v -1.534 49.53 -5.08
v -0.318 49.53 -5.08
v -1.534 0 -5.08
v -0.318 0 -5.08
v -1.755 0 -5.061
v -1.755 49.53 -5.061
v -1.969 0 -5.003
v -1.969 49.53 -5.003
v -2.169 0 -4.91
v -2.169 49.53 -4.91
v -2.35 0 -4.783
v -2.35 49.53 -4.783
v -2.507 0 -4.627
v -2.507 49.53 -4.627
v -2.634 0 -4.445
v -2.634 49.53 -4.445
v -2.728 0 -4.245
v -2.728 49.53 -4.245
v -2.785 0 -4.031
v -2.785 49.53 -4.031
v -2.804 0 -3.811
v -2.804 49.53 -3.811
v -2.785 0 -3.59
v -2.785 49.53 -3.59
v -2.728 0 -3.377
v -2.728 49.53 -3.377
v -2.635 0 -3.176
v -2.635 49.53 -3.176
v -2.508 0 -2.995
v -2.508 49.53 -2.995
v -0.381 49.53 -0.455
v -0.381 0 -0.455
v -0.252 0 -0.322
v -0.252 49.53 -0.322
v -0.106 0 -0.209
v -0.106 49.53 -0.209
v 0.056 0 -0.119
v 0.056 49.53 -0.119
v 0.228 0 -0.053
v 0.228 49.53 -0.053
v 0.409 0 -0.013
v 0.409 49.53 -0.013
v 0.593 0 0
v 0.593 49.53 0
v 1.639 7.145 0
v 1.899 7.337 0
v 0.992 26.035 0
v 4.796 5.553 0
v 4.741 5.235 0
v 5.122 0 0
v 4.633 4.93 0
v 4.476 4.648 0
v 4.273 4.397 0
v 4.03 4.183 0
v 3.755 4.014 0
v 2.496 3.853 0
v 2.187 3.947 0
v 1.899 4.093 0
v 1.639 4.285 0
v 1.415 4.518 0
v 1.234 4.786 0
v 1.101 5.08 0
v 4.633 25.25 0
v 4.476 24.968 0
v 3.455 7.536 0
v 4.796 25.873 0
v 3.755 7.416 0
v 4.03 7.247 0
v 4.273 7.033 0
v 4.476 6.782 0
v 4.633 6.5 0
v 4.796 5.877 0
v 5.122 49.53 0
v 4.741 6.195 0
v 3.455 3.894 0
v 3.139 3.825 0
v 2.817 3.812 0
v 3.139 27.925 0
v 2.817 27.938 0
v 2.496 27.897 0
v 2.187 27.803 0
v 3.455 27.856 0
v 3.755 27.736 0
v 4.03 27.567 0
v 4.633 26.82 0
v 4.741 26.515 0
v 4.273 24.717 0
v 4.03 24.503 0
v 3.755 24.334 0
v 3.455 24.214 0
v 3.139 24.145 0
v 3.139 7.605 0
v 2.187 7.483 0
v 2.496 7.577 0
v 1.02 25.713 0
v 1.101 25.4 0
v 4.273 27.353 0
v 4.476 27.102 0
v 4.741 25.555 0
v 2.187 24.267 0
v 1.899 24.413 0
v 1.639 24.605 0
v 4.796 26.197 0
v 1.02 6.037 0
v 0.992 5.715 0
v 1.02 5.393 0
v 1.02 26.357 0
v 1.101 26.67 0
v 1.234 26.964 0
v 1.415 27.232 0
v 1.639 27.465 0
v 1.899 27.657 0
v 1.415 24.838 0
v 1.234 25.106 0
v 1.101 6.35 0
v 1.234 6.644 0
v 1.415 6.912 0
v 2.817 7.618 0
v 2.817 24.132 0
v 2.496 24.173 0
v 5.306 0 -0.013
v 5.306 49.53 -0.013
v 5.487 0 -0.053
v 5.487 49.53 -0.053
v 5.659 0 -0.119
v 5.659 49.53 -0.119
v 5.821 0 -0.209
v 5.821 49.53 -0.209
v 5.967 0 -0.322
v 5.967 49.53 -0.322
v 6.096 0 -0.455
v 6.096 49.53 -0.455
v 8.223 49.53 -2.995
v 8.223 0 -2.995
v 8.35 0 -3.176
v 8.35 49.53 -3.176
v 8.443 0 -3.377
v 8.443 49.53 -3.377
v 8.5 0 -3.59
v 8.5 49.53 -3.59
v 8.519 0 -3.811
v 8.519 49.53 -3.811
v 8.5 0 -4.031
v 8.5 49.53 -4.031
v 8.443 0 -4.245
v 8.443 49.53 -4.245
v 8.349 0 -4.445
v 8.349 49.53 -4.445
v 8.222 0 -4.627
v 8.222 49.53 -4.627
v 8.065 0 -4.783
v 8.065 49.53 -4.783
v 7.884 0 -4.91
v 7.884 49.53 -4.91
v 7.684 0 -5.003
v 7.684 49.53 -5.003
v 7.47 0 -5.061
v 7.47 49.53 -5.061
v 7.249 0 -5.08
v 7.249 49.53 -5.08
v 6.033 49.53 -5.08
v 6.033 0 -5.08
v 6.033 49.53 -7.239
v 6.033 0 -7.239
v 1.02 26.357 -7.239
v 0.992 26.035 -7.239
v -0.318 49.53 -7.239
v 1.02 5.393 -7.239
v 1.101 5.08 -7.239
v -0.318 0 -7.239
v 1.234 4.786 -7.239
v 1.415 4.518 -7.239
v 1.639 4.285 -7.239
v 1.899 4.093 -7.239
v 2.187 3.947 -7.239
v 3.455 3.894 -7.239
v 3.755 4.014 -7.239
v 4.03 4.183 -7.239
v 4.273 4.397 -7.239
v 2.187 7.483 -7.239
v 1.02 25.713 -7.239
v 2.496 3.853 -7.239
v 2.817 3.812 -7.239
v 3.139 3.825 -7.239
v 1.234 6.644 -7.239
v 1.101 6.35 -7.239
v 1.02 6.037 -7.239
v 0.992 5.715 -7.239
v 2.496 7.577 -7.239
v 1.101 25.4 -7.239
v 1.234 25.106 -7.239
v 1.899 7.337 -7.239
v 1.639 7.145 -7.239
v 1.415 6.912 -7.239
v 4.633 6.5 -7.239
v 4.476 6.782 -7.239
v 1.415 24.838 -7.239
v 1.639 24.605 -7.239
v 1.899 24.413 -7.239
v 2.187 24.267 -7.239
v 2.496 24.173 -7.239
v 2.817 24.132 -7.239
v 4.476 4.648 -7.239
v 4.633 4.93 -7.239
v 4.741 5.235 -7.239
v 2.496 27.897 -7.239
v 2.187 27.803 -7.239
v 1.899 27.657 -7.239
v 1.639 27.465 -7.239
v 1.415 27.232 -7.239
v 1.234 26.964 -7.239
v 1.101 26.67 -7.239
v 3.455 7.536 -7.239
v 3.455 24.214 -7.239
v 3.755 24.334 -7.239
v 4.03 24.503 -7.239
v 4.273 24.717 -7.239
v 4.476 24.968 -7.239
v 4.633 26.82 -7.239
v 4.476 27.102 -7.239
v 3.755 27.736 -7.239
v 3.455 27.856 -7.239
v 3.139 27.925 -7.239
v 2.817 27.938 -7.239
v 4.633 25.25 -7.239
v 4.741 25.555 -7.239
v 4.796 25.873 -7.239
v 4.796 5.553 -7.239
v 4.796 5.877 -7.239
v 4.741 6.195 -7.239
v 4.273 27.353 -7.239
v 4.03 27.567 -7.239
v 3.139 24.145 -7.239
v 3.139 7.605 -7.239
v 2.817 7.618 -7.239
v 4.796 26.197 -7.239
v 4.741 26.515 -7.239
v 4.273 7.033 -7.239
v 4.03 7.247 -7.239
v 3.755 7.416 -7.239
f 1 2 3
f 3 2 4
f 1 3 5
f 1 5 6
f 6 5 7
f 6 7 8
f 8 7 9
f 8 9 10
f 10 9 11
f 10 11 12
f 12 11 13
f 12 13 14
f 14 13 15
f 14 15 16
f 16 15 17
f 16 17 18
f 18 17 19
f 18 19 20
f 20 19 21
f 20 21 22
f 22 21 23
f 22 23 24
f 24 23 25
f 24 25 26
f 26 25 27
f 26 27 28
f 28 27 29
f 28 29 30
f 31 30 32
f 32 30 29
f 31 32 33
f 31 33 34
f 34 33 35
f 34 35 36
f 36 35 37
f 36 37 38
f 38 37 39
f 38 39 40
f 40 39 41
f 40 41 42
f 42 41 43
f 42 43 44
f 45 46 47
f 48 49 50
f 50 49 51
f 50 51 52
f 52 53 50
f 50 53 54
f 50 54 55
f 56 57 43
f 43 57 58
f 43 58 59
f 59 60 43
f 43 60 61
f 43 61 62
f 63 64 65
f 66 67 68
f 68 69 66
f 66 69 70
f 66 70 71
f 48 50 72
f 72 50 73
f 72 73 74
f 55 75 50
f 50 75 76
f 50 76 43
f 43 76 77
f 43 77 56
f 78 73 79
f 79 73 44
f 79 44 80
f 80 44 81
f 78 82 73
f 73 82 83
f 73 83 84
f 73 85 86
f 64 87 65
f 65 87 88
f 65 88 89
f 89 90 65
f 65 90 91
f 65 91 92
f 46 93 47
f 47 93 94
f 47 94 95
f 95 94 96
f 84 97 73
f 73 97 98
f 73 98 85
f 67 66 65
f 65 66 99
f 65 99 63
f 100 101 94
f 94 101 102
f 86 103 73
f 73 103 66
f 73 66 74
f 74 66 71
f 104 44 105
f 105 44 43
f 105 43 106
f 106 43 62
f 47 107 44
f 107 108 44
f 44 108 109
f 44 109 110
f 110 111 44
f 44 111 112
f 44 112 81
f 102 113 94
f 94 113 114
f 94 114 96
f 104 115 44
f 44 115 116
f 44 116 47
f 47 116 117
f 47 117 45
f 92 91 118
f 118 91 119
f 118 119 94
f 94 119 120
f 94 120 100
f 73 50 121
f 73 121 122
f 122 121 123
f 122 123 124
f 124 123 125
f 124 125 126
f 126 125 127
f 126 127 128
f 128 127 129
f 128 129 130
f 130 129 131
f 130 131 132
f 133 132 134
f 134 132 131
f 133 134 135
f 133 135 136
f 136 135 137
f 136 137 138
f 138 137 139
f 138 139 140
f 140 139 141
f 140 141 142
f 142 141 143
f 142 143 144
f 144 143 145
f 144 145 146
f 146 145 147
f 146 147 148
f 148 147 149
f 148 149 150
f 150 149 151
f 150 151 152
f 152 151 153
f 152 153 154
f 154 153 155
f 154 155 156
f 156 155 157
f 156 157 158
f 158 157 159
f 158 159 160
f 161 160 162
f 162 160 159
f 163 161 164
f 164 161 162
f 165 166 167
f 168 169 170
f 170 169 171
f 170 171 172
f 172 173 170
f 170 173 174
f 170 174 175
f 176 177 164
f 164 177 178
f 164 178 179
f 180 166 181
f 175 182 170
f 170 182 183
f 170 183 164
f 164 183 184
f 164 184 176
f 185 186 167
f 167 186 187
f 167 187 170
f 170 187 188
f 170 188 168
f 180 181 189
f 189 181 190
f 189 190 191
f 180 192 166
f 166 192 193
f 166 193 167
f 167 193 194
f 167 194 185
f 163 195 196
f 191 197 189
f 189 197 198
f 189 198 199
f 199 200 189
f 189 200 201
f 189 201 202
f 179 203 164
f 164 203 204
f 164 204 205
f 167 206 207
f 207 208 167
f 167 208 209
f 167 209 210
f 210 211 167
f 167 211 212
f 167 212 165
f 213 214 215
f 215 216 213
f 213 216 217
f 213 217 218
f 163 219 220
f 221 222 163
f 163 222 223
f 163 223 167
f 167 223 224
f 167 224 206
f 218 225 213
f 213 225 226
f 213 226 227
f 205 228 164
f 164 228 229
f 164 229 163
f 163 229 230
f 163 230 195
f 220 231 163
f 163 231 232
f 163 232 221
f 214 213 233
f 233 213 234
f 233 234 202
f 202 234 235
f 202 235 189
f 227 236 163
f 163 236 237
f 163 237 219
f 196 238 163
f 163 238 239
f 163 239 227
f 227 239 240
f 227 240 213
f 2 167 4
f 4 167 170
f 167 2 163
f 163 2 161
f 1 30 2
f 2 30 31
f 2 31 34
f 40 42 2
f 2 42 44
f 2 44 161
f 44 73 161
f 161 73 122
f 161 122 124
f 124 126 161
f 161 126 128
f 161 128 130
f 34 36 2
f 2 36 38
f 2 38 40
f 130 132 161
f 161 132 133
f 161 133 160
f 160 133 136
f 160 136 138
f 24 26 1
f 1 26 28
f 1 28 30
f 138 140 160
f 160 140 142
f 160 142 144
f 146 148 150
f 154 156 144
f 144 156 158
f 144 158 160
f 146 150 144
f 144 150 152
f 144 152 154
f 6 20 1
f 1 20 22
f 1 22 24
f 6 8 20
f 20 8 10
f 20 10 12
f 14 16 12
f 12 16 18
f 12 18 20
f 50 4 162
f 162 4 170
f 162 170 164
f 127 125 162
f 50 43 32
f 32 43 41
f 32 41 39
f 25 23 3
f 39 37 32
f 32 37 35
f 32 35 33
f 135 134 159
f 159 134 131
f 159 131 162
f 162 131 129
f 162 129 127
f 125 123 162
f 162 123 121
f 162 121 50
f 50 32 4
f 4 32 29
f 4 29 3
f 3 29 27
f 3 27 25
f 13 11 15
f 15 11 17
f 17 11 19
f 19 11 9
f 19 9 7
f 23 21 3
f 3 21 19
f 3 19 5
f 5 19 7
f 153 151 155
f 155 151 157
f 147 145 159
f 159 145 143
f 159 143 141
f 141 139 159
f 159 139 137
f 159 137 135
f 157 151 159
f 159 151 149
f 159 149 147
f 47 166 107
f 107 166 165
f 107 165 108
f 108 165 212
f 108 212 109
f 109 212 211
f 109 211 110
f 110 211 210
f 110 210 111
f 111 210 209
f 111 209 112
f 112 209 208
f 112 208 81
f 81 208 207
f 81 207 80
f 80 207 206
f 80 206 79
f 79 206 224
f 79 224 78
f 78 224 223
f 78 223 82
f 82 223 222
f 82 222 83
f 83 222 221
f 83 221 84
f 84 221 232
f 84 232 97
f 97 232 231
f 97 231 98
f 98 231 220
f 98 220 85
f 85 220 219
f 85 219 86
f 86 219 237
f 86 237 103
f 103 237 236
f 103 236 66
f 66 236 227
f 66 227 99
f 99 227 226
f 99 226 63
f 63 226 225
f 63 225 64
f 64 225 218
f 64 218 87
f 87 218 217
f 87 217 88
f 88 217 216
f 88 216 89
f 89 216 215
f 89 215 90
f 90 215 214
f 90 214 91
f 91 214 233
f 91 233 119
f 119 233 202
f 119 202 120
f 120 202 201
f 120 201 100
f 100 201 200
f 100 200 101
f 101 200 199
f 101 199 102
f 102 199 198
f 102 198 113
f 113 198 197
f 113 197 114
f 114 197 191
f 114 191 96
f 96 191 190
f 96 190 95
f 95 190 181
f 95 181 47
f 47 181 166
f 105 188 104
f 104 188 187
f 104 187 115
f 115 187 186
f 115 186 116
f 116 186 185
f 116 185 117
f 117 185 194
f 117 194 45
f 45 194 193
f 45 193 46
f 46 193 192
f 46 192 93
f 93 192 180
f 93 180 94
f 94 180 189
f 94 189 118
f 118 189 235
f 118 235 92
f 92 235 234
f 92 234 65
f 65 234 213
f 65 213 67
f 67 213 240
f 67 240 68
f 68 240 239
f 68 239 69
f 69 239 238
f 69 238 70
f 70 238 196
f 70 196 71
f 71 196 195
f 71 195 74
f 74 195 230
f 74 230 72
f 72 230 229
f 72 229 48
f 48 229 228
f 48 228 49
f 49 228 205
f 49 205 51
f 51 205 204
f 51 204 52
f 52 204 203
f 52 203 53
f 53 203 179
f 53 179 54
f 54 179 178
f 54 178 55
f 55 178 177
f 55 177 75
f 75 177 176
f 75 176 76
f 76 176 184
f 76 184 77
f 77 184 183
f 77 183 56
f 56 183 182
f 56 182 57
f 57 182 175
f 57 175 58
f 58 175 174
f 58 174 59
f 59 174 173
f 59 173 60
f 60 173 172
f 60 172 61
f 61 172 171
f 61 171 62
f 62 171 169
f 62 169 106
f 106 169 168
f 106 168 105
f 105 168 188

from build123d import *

# Parameters (mm, degrees)
BOSS_EXTRUDE1_DEPTH = 49.53
SKETCH2_R           = 1.905
CUT_EXTRUDE1_DEPTH  = 7.239


with BuildPart() as part:
    # Sketch1 → Boss-Extrude1 (new body)
    with BuildSketch(Plane(origin=(0, 0, 0), x_dir=(1, 0, 0), z_dir=(0, 1, 0))):
        with BuildLine():
            Line((0.592937145, 0), (5.122062855, 0))
            ThreePointArc((5.122062855, 0), (5.659328642, 0.119241348), (6.095705772, 0.454574057))
            Line((6.095705772, 0.454574057), (8.222955772, 2.994574057))
            ThreePointArc((8.222955772, 2.994574057), (8.400071506, 4.347265787), (7.249312855, 5.08))
            Line((7.249312855, 5.08), (6.0325, 5.08))
            Line((6.0325, 5.08), (6.0325, 7.239))
            Line((6.0325, 7.239), (-0.3175, 7.239))
            Line((-0.3175, 7.239), (-0.3175, 5.08))
            Line((-0.3175, 5.08), (-1.534312855, 5.08))
            ThreePointArc((-1.534312855, 5.08), (-2.685071506, 4.347265787), (-2.507955772, 2.994574057))
            Line((-2.507955772, 2.994574057), (-0.380705772, 0.454574057))
            ThreePointArc((-0.380705772, 0.454574057), (0.055671358, 0.119241348), (0.592937145, 0))
        make_face()
    extrude(amount=BOSS_EXTRUDE1_DEPTH)

    # Sketch2 → Cut-Extrude1 (cut)
    with BuildSketch(Plane(origin=(0, 0, -7.239), x_dir=(-1, 0, 0), z_dir=(0, 0, -1))):
        with Locations((-2.897477191, 5.715)):
            Circle(SKETCH2_R)
        with Locations((-2.897477191, 26.035)):
            Circle(SKETCH2_R)
    extrude(amount=-CUT_EXTRUDE1_DEPTH, mode=Mode.SUBTRACT)


solid = part.part
